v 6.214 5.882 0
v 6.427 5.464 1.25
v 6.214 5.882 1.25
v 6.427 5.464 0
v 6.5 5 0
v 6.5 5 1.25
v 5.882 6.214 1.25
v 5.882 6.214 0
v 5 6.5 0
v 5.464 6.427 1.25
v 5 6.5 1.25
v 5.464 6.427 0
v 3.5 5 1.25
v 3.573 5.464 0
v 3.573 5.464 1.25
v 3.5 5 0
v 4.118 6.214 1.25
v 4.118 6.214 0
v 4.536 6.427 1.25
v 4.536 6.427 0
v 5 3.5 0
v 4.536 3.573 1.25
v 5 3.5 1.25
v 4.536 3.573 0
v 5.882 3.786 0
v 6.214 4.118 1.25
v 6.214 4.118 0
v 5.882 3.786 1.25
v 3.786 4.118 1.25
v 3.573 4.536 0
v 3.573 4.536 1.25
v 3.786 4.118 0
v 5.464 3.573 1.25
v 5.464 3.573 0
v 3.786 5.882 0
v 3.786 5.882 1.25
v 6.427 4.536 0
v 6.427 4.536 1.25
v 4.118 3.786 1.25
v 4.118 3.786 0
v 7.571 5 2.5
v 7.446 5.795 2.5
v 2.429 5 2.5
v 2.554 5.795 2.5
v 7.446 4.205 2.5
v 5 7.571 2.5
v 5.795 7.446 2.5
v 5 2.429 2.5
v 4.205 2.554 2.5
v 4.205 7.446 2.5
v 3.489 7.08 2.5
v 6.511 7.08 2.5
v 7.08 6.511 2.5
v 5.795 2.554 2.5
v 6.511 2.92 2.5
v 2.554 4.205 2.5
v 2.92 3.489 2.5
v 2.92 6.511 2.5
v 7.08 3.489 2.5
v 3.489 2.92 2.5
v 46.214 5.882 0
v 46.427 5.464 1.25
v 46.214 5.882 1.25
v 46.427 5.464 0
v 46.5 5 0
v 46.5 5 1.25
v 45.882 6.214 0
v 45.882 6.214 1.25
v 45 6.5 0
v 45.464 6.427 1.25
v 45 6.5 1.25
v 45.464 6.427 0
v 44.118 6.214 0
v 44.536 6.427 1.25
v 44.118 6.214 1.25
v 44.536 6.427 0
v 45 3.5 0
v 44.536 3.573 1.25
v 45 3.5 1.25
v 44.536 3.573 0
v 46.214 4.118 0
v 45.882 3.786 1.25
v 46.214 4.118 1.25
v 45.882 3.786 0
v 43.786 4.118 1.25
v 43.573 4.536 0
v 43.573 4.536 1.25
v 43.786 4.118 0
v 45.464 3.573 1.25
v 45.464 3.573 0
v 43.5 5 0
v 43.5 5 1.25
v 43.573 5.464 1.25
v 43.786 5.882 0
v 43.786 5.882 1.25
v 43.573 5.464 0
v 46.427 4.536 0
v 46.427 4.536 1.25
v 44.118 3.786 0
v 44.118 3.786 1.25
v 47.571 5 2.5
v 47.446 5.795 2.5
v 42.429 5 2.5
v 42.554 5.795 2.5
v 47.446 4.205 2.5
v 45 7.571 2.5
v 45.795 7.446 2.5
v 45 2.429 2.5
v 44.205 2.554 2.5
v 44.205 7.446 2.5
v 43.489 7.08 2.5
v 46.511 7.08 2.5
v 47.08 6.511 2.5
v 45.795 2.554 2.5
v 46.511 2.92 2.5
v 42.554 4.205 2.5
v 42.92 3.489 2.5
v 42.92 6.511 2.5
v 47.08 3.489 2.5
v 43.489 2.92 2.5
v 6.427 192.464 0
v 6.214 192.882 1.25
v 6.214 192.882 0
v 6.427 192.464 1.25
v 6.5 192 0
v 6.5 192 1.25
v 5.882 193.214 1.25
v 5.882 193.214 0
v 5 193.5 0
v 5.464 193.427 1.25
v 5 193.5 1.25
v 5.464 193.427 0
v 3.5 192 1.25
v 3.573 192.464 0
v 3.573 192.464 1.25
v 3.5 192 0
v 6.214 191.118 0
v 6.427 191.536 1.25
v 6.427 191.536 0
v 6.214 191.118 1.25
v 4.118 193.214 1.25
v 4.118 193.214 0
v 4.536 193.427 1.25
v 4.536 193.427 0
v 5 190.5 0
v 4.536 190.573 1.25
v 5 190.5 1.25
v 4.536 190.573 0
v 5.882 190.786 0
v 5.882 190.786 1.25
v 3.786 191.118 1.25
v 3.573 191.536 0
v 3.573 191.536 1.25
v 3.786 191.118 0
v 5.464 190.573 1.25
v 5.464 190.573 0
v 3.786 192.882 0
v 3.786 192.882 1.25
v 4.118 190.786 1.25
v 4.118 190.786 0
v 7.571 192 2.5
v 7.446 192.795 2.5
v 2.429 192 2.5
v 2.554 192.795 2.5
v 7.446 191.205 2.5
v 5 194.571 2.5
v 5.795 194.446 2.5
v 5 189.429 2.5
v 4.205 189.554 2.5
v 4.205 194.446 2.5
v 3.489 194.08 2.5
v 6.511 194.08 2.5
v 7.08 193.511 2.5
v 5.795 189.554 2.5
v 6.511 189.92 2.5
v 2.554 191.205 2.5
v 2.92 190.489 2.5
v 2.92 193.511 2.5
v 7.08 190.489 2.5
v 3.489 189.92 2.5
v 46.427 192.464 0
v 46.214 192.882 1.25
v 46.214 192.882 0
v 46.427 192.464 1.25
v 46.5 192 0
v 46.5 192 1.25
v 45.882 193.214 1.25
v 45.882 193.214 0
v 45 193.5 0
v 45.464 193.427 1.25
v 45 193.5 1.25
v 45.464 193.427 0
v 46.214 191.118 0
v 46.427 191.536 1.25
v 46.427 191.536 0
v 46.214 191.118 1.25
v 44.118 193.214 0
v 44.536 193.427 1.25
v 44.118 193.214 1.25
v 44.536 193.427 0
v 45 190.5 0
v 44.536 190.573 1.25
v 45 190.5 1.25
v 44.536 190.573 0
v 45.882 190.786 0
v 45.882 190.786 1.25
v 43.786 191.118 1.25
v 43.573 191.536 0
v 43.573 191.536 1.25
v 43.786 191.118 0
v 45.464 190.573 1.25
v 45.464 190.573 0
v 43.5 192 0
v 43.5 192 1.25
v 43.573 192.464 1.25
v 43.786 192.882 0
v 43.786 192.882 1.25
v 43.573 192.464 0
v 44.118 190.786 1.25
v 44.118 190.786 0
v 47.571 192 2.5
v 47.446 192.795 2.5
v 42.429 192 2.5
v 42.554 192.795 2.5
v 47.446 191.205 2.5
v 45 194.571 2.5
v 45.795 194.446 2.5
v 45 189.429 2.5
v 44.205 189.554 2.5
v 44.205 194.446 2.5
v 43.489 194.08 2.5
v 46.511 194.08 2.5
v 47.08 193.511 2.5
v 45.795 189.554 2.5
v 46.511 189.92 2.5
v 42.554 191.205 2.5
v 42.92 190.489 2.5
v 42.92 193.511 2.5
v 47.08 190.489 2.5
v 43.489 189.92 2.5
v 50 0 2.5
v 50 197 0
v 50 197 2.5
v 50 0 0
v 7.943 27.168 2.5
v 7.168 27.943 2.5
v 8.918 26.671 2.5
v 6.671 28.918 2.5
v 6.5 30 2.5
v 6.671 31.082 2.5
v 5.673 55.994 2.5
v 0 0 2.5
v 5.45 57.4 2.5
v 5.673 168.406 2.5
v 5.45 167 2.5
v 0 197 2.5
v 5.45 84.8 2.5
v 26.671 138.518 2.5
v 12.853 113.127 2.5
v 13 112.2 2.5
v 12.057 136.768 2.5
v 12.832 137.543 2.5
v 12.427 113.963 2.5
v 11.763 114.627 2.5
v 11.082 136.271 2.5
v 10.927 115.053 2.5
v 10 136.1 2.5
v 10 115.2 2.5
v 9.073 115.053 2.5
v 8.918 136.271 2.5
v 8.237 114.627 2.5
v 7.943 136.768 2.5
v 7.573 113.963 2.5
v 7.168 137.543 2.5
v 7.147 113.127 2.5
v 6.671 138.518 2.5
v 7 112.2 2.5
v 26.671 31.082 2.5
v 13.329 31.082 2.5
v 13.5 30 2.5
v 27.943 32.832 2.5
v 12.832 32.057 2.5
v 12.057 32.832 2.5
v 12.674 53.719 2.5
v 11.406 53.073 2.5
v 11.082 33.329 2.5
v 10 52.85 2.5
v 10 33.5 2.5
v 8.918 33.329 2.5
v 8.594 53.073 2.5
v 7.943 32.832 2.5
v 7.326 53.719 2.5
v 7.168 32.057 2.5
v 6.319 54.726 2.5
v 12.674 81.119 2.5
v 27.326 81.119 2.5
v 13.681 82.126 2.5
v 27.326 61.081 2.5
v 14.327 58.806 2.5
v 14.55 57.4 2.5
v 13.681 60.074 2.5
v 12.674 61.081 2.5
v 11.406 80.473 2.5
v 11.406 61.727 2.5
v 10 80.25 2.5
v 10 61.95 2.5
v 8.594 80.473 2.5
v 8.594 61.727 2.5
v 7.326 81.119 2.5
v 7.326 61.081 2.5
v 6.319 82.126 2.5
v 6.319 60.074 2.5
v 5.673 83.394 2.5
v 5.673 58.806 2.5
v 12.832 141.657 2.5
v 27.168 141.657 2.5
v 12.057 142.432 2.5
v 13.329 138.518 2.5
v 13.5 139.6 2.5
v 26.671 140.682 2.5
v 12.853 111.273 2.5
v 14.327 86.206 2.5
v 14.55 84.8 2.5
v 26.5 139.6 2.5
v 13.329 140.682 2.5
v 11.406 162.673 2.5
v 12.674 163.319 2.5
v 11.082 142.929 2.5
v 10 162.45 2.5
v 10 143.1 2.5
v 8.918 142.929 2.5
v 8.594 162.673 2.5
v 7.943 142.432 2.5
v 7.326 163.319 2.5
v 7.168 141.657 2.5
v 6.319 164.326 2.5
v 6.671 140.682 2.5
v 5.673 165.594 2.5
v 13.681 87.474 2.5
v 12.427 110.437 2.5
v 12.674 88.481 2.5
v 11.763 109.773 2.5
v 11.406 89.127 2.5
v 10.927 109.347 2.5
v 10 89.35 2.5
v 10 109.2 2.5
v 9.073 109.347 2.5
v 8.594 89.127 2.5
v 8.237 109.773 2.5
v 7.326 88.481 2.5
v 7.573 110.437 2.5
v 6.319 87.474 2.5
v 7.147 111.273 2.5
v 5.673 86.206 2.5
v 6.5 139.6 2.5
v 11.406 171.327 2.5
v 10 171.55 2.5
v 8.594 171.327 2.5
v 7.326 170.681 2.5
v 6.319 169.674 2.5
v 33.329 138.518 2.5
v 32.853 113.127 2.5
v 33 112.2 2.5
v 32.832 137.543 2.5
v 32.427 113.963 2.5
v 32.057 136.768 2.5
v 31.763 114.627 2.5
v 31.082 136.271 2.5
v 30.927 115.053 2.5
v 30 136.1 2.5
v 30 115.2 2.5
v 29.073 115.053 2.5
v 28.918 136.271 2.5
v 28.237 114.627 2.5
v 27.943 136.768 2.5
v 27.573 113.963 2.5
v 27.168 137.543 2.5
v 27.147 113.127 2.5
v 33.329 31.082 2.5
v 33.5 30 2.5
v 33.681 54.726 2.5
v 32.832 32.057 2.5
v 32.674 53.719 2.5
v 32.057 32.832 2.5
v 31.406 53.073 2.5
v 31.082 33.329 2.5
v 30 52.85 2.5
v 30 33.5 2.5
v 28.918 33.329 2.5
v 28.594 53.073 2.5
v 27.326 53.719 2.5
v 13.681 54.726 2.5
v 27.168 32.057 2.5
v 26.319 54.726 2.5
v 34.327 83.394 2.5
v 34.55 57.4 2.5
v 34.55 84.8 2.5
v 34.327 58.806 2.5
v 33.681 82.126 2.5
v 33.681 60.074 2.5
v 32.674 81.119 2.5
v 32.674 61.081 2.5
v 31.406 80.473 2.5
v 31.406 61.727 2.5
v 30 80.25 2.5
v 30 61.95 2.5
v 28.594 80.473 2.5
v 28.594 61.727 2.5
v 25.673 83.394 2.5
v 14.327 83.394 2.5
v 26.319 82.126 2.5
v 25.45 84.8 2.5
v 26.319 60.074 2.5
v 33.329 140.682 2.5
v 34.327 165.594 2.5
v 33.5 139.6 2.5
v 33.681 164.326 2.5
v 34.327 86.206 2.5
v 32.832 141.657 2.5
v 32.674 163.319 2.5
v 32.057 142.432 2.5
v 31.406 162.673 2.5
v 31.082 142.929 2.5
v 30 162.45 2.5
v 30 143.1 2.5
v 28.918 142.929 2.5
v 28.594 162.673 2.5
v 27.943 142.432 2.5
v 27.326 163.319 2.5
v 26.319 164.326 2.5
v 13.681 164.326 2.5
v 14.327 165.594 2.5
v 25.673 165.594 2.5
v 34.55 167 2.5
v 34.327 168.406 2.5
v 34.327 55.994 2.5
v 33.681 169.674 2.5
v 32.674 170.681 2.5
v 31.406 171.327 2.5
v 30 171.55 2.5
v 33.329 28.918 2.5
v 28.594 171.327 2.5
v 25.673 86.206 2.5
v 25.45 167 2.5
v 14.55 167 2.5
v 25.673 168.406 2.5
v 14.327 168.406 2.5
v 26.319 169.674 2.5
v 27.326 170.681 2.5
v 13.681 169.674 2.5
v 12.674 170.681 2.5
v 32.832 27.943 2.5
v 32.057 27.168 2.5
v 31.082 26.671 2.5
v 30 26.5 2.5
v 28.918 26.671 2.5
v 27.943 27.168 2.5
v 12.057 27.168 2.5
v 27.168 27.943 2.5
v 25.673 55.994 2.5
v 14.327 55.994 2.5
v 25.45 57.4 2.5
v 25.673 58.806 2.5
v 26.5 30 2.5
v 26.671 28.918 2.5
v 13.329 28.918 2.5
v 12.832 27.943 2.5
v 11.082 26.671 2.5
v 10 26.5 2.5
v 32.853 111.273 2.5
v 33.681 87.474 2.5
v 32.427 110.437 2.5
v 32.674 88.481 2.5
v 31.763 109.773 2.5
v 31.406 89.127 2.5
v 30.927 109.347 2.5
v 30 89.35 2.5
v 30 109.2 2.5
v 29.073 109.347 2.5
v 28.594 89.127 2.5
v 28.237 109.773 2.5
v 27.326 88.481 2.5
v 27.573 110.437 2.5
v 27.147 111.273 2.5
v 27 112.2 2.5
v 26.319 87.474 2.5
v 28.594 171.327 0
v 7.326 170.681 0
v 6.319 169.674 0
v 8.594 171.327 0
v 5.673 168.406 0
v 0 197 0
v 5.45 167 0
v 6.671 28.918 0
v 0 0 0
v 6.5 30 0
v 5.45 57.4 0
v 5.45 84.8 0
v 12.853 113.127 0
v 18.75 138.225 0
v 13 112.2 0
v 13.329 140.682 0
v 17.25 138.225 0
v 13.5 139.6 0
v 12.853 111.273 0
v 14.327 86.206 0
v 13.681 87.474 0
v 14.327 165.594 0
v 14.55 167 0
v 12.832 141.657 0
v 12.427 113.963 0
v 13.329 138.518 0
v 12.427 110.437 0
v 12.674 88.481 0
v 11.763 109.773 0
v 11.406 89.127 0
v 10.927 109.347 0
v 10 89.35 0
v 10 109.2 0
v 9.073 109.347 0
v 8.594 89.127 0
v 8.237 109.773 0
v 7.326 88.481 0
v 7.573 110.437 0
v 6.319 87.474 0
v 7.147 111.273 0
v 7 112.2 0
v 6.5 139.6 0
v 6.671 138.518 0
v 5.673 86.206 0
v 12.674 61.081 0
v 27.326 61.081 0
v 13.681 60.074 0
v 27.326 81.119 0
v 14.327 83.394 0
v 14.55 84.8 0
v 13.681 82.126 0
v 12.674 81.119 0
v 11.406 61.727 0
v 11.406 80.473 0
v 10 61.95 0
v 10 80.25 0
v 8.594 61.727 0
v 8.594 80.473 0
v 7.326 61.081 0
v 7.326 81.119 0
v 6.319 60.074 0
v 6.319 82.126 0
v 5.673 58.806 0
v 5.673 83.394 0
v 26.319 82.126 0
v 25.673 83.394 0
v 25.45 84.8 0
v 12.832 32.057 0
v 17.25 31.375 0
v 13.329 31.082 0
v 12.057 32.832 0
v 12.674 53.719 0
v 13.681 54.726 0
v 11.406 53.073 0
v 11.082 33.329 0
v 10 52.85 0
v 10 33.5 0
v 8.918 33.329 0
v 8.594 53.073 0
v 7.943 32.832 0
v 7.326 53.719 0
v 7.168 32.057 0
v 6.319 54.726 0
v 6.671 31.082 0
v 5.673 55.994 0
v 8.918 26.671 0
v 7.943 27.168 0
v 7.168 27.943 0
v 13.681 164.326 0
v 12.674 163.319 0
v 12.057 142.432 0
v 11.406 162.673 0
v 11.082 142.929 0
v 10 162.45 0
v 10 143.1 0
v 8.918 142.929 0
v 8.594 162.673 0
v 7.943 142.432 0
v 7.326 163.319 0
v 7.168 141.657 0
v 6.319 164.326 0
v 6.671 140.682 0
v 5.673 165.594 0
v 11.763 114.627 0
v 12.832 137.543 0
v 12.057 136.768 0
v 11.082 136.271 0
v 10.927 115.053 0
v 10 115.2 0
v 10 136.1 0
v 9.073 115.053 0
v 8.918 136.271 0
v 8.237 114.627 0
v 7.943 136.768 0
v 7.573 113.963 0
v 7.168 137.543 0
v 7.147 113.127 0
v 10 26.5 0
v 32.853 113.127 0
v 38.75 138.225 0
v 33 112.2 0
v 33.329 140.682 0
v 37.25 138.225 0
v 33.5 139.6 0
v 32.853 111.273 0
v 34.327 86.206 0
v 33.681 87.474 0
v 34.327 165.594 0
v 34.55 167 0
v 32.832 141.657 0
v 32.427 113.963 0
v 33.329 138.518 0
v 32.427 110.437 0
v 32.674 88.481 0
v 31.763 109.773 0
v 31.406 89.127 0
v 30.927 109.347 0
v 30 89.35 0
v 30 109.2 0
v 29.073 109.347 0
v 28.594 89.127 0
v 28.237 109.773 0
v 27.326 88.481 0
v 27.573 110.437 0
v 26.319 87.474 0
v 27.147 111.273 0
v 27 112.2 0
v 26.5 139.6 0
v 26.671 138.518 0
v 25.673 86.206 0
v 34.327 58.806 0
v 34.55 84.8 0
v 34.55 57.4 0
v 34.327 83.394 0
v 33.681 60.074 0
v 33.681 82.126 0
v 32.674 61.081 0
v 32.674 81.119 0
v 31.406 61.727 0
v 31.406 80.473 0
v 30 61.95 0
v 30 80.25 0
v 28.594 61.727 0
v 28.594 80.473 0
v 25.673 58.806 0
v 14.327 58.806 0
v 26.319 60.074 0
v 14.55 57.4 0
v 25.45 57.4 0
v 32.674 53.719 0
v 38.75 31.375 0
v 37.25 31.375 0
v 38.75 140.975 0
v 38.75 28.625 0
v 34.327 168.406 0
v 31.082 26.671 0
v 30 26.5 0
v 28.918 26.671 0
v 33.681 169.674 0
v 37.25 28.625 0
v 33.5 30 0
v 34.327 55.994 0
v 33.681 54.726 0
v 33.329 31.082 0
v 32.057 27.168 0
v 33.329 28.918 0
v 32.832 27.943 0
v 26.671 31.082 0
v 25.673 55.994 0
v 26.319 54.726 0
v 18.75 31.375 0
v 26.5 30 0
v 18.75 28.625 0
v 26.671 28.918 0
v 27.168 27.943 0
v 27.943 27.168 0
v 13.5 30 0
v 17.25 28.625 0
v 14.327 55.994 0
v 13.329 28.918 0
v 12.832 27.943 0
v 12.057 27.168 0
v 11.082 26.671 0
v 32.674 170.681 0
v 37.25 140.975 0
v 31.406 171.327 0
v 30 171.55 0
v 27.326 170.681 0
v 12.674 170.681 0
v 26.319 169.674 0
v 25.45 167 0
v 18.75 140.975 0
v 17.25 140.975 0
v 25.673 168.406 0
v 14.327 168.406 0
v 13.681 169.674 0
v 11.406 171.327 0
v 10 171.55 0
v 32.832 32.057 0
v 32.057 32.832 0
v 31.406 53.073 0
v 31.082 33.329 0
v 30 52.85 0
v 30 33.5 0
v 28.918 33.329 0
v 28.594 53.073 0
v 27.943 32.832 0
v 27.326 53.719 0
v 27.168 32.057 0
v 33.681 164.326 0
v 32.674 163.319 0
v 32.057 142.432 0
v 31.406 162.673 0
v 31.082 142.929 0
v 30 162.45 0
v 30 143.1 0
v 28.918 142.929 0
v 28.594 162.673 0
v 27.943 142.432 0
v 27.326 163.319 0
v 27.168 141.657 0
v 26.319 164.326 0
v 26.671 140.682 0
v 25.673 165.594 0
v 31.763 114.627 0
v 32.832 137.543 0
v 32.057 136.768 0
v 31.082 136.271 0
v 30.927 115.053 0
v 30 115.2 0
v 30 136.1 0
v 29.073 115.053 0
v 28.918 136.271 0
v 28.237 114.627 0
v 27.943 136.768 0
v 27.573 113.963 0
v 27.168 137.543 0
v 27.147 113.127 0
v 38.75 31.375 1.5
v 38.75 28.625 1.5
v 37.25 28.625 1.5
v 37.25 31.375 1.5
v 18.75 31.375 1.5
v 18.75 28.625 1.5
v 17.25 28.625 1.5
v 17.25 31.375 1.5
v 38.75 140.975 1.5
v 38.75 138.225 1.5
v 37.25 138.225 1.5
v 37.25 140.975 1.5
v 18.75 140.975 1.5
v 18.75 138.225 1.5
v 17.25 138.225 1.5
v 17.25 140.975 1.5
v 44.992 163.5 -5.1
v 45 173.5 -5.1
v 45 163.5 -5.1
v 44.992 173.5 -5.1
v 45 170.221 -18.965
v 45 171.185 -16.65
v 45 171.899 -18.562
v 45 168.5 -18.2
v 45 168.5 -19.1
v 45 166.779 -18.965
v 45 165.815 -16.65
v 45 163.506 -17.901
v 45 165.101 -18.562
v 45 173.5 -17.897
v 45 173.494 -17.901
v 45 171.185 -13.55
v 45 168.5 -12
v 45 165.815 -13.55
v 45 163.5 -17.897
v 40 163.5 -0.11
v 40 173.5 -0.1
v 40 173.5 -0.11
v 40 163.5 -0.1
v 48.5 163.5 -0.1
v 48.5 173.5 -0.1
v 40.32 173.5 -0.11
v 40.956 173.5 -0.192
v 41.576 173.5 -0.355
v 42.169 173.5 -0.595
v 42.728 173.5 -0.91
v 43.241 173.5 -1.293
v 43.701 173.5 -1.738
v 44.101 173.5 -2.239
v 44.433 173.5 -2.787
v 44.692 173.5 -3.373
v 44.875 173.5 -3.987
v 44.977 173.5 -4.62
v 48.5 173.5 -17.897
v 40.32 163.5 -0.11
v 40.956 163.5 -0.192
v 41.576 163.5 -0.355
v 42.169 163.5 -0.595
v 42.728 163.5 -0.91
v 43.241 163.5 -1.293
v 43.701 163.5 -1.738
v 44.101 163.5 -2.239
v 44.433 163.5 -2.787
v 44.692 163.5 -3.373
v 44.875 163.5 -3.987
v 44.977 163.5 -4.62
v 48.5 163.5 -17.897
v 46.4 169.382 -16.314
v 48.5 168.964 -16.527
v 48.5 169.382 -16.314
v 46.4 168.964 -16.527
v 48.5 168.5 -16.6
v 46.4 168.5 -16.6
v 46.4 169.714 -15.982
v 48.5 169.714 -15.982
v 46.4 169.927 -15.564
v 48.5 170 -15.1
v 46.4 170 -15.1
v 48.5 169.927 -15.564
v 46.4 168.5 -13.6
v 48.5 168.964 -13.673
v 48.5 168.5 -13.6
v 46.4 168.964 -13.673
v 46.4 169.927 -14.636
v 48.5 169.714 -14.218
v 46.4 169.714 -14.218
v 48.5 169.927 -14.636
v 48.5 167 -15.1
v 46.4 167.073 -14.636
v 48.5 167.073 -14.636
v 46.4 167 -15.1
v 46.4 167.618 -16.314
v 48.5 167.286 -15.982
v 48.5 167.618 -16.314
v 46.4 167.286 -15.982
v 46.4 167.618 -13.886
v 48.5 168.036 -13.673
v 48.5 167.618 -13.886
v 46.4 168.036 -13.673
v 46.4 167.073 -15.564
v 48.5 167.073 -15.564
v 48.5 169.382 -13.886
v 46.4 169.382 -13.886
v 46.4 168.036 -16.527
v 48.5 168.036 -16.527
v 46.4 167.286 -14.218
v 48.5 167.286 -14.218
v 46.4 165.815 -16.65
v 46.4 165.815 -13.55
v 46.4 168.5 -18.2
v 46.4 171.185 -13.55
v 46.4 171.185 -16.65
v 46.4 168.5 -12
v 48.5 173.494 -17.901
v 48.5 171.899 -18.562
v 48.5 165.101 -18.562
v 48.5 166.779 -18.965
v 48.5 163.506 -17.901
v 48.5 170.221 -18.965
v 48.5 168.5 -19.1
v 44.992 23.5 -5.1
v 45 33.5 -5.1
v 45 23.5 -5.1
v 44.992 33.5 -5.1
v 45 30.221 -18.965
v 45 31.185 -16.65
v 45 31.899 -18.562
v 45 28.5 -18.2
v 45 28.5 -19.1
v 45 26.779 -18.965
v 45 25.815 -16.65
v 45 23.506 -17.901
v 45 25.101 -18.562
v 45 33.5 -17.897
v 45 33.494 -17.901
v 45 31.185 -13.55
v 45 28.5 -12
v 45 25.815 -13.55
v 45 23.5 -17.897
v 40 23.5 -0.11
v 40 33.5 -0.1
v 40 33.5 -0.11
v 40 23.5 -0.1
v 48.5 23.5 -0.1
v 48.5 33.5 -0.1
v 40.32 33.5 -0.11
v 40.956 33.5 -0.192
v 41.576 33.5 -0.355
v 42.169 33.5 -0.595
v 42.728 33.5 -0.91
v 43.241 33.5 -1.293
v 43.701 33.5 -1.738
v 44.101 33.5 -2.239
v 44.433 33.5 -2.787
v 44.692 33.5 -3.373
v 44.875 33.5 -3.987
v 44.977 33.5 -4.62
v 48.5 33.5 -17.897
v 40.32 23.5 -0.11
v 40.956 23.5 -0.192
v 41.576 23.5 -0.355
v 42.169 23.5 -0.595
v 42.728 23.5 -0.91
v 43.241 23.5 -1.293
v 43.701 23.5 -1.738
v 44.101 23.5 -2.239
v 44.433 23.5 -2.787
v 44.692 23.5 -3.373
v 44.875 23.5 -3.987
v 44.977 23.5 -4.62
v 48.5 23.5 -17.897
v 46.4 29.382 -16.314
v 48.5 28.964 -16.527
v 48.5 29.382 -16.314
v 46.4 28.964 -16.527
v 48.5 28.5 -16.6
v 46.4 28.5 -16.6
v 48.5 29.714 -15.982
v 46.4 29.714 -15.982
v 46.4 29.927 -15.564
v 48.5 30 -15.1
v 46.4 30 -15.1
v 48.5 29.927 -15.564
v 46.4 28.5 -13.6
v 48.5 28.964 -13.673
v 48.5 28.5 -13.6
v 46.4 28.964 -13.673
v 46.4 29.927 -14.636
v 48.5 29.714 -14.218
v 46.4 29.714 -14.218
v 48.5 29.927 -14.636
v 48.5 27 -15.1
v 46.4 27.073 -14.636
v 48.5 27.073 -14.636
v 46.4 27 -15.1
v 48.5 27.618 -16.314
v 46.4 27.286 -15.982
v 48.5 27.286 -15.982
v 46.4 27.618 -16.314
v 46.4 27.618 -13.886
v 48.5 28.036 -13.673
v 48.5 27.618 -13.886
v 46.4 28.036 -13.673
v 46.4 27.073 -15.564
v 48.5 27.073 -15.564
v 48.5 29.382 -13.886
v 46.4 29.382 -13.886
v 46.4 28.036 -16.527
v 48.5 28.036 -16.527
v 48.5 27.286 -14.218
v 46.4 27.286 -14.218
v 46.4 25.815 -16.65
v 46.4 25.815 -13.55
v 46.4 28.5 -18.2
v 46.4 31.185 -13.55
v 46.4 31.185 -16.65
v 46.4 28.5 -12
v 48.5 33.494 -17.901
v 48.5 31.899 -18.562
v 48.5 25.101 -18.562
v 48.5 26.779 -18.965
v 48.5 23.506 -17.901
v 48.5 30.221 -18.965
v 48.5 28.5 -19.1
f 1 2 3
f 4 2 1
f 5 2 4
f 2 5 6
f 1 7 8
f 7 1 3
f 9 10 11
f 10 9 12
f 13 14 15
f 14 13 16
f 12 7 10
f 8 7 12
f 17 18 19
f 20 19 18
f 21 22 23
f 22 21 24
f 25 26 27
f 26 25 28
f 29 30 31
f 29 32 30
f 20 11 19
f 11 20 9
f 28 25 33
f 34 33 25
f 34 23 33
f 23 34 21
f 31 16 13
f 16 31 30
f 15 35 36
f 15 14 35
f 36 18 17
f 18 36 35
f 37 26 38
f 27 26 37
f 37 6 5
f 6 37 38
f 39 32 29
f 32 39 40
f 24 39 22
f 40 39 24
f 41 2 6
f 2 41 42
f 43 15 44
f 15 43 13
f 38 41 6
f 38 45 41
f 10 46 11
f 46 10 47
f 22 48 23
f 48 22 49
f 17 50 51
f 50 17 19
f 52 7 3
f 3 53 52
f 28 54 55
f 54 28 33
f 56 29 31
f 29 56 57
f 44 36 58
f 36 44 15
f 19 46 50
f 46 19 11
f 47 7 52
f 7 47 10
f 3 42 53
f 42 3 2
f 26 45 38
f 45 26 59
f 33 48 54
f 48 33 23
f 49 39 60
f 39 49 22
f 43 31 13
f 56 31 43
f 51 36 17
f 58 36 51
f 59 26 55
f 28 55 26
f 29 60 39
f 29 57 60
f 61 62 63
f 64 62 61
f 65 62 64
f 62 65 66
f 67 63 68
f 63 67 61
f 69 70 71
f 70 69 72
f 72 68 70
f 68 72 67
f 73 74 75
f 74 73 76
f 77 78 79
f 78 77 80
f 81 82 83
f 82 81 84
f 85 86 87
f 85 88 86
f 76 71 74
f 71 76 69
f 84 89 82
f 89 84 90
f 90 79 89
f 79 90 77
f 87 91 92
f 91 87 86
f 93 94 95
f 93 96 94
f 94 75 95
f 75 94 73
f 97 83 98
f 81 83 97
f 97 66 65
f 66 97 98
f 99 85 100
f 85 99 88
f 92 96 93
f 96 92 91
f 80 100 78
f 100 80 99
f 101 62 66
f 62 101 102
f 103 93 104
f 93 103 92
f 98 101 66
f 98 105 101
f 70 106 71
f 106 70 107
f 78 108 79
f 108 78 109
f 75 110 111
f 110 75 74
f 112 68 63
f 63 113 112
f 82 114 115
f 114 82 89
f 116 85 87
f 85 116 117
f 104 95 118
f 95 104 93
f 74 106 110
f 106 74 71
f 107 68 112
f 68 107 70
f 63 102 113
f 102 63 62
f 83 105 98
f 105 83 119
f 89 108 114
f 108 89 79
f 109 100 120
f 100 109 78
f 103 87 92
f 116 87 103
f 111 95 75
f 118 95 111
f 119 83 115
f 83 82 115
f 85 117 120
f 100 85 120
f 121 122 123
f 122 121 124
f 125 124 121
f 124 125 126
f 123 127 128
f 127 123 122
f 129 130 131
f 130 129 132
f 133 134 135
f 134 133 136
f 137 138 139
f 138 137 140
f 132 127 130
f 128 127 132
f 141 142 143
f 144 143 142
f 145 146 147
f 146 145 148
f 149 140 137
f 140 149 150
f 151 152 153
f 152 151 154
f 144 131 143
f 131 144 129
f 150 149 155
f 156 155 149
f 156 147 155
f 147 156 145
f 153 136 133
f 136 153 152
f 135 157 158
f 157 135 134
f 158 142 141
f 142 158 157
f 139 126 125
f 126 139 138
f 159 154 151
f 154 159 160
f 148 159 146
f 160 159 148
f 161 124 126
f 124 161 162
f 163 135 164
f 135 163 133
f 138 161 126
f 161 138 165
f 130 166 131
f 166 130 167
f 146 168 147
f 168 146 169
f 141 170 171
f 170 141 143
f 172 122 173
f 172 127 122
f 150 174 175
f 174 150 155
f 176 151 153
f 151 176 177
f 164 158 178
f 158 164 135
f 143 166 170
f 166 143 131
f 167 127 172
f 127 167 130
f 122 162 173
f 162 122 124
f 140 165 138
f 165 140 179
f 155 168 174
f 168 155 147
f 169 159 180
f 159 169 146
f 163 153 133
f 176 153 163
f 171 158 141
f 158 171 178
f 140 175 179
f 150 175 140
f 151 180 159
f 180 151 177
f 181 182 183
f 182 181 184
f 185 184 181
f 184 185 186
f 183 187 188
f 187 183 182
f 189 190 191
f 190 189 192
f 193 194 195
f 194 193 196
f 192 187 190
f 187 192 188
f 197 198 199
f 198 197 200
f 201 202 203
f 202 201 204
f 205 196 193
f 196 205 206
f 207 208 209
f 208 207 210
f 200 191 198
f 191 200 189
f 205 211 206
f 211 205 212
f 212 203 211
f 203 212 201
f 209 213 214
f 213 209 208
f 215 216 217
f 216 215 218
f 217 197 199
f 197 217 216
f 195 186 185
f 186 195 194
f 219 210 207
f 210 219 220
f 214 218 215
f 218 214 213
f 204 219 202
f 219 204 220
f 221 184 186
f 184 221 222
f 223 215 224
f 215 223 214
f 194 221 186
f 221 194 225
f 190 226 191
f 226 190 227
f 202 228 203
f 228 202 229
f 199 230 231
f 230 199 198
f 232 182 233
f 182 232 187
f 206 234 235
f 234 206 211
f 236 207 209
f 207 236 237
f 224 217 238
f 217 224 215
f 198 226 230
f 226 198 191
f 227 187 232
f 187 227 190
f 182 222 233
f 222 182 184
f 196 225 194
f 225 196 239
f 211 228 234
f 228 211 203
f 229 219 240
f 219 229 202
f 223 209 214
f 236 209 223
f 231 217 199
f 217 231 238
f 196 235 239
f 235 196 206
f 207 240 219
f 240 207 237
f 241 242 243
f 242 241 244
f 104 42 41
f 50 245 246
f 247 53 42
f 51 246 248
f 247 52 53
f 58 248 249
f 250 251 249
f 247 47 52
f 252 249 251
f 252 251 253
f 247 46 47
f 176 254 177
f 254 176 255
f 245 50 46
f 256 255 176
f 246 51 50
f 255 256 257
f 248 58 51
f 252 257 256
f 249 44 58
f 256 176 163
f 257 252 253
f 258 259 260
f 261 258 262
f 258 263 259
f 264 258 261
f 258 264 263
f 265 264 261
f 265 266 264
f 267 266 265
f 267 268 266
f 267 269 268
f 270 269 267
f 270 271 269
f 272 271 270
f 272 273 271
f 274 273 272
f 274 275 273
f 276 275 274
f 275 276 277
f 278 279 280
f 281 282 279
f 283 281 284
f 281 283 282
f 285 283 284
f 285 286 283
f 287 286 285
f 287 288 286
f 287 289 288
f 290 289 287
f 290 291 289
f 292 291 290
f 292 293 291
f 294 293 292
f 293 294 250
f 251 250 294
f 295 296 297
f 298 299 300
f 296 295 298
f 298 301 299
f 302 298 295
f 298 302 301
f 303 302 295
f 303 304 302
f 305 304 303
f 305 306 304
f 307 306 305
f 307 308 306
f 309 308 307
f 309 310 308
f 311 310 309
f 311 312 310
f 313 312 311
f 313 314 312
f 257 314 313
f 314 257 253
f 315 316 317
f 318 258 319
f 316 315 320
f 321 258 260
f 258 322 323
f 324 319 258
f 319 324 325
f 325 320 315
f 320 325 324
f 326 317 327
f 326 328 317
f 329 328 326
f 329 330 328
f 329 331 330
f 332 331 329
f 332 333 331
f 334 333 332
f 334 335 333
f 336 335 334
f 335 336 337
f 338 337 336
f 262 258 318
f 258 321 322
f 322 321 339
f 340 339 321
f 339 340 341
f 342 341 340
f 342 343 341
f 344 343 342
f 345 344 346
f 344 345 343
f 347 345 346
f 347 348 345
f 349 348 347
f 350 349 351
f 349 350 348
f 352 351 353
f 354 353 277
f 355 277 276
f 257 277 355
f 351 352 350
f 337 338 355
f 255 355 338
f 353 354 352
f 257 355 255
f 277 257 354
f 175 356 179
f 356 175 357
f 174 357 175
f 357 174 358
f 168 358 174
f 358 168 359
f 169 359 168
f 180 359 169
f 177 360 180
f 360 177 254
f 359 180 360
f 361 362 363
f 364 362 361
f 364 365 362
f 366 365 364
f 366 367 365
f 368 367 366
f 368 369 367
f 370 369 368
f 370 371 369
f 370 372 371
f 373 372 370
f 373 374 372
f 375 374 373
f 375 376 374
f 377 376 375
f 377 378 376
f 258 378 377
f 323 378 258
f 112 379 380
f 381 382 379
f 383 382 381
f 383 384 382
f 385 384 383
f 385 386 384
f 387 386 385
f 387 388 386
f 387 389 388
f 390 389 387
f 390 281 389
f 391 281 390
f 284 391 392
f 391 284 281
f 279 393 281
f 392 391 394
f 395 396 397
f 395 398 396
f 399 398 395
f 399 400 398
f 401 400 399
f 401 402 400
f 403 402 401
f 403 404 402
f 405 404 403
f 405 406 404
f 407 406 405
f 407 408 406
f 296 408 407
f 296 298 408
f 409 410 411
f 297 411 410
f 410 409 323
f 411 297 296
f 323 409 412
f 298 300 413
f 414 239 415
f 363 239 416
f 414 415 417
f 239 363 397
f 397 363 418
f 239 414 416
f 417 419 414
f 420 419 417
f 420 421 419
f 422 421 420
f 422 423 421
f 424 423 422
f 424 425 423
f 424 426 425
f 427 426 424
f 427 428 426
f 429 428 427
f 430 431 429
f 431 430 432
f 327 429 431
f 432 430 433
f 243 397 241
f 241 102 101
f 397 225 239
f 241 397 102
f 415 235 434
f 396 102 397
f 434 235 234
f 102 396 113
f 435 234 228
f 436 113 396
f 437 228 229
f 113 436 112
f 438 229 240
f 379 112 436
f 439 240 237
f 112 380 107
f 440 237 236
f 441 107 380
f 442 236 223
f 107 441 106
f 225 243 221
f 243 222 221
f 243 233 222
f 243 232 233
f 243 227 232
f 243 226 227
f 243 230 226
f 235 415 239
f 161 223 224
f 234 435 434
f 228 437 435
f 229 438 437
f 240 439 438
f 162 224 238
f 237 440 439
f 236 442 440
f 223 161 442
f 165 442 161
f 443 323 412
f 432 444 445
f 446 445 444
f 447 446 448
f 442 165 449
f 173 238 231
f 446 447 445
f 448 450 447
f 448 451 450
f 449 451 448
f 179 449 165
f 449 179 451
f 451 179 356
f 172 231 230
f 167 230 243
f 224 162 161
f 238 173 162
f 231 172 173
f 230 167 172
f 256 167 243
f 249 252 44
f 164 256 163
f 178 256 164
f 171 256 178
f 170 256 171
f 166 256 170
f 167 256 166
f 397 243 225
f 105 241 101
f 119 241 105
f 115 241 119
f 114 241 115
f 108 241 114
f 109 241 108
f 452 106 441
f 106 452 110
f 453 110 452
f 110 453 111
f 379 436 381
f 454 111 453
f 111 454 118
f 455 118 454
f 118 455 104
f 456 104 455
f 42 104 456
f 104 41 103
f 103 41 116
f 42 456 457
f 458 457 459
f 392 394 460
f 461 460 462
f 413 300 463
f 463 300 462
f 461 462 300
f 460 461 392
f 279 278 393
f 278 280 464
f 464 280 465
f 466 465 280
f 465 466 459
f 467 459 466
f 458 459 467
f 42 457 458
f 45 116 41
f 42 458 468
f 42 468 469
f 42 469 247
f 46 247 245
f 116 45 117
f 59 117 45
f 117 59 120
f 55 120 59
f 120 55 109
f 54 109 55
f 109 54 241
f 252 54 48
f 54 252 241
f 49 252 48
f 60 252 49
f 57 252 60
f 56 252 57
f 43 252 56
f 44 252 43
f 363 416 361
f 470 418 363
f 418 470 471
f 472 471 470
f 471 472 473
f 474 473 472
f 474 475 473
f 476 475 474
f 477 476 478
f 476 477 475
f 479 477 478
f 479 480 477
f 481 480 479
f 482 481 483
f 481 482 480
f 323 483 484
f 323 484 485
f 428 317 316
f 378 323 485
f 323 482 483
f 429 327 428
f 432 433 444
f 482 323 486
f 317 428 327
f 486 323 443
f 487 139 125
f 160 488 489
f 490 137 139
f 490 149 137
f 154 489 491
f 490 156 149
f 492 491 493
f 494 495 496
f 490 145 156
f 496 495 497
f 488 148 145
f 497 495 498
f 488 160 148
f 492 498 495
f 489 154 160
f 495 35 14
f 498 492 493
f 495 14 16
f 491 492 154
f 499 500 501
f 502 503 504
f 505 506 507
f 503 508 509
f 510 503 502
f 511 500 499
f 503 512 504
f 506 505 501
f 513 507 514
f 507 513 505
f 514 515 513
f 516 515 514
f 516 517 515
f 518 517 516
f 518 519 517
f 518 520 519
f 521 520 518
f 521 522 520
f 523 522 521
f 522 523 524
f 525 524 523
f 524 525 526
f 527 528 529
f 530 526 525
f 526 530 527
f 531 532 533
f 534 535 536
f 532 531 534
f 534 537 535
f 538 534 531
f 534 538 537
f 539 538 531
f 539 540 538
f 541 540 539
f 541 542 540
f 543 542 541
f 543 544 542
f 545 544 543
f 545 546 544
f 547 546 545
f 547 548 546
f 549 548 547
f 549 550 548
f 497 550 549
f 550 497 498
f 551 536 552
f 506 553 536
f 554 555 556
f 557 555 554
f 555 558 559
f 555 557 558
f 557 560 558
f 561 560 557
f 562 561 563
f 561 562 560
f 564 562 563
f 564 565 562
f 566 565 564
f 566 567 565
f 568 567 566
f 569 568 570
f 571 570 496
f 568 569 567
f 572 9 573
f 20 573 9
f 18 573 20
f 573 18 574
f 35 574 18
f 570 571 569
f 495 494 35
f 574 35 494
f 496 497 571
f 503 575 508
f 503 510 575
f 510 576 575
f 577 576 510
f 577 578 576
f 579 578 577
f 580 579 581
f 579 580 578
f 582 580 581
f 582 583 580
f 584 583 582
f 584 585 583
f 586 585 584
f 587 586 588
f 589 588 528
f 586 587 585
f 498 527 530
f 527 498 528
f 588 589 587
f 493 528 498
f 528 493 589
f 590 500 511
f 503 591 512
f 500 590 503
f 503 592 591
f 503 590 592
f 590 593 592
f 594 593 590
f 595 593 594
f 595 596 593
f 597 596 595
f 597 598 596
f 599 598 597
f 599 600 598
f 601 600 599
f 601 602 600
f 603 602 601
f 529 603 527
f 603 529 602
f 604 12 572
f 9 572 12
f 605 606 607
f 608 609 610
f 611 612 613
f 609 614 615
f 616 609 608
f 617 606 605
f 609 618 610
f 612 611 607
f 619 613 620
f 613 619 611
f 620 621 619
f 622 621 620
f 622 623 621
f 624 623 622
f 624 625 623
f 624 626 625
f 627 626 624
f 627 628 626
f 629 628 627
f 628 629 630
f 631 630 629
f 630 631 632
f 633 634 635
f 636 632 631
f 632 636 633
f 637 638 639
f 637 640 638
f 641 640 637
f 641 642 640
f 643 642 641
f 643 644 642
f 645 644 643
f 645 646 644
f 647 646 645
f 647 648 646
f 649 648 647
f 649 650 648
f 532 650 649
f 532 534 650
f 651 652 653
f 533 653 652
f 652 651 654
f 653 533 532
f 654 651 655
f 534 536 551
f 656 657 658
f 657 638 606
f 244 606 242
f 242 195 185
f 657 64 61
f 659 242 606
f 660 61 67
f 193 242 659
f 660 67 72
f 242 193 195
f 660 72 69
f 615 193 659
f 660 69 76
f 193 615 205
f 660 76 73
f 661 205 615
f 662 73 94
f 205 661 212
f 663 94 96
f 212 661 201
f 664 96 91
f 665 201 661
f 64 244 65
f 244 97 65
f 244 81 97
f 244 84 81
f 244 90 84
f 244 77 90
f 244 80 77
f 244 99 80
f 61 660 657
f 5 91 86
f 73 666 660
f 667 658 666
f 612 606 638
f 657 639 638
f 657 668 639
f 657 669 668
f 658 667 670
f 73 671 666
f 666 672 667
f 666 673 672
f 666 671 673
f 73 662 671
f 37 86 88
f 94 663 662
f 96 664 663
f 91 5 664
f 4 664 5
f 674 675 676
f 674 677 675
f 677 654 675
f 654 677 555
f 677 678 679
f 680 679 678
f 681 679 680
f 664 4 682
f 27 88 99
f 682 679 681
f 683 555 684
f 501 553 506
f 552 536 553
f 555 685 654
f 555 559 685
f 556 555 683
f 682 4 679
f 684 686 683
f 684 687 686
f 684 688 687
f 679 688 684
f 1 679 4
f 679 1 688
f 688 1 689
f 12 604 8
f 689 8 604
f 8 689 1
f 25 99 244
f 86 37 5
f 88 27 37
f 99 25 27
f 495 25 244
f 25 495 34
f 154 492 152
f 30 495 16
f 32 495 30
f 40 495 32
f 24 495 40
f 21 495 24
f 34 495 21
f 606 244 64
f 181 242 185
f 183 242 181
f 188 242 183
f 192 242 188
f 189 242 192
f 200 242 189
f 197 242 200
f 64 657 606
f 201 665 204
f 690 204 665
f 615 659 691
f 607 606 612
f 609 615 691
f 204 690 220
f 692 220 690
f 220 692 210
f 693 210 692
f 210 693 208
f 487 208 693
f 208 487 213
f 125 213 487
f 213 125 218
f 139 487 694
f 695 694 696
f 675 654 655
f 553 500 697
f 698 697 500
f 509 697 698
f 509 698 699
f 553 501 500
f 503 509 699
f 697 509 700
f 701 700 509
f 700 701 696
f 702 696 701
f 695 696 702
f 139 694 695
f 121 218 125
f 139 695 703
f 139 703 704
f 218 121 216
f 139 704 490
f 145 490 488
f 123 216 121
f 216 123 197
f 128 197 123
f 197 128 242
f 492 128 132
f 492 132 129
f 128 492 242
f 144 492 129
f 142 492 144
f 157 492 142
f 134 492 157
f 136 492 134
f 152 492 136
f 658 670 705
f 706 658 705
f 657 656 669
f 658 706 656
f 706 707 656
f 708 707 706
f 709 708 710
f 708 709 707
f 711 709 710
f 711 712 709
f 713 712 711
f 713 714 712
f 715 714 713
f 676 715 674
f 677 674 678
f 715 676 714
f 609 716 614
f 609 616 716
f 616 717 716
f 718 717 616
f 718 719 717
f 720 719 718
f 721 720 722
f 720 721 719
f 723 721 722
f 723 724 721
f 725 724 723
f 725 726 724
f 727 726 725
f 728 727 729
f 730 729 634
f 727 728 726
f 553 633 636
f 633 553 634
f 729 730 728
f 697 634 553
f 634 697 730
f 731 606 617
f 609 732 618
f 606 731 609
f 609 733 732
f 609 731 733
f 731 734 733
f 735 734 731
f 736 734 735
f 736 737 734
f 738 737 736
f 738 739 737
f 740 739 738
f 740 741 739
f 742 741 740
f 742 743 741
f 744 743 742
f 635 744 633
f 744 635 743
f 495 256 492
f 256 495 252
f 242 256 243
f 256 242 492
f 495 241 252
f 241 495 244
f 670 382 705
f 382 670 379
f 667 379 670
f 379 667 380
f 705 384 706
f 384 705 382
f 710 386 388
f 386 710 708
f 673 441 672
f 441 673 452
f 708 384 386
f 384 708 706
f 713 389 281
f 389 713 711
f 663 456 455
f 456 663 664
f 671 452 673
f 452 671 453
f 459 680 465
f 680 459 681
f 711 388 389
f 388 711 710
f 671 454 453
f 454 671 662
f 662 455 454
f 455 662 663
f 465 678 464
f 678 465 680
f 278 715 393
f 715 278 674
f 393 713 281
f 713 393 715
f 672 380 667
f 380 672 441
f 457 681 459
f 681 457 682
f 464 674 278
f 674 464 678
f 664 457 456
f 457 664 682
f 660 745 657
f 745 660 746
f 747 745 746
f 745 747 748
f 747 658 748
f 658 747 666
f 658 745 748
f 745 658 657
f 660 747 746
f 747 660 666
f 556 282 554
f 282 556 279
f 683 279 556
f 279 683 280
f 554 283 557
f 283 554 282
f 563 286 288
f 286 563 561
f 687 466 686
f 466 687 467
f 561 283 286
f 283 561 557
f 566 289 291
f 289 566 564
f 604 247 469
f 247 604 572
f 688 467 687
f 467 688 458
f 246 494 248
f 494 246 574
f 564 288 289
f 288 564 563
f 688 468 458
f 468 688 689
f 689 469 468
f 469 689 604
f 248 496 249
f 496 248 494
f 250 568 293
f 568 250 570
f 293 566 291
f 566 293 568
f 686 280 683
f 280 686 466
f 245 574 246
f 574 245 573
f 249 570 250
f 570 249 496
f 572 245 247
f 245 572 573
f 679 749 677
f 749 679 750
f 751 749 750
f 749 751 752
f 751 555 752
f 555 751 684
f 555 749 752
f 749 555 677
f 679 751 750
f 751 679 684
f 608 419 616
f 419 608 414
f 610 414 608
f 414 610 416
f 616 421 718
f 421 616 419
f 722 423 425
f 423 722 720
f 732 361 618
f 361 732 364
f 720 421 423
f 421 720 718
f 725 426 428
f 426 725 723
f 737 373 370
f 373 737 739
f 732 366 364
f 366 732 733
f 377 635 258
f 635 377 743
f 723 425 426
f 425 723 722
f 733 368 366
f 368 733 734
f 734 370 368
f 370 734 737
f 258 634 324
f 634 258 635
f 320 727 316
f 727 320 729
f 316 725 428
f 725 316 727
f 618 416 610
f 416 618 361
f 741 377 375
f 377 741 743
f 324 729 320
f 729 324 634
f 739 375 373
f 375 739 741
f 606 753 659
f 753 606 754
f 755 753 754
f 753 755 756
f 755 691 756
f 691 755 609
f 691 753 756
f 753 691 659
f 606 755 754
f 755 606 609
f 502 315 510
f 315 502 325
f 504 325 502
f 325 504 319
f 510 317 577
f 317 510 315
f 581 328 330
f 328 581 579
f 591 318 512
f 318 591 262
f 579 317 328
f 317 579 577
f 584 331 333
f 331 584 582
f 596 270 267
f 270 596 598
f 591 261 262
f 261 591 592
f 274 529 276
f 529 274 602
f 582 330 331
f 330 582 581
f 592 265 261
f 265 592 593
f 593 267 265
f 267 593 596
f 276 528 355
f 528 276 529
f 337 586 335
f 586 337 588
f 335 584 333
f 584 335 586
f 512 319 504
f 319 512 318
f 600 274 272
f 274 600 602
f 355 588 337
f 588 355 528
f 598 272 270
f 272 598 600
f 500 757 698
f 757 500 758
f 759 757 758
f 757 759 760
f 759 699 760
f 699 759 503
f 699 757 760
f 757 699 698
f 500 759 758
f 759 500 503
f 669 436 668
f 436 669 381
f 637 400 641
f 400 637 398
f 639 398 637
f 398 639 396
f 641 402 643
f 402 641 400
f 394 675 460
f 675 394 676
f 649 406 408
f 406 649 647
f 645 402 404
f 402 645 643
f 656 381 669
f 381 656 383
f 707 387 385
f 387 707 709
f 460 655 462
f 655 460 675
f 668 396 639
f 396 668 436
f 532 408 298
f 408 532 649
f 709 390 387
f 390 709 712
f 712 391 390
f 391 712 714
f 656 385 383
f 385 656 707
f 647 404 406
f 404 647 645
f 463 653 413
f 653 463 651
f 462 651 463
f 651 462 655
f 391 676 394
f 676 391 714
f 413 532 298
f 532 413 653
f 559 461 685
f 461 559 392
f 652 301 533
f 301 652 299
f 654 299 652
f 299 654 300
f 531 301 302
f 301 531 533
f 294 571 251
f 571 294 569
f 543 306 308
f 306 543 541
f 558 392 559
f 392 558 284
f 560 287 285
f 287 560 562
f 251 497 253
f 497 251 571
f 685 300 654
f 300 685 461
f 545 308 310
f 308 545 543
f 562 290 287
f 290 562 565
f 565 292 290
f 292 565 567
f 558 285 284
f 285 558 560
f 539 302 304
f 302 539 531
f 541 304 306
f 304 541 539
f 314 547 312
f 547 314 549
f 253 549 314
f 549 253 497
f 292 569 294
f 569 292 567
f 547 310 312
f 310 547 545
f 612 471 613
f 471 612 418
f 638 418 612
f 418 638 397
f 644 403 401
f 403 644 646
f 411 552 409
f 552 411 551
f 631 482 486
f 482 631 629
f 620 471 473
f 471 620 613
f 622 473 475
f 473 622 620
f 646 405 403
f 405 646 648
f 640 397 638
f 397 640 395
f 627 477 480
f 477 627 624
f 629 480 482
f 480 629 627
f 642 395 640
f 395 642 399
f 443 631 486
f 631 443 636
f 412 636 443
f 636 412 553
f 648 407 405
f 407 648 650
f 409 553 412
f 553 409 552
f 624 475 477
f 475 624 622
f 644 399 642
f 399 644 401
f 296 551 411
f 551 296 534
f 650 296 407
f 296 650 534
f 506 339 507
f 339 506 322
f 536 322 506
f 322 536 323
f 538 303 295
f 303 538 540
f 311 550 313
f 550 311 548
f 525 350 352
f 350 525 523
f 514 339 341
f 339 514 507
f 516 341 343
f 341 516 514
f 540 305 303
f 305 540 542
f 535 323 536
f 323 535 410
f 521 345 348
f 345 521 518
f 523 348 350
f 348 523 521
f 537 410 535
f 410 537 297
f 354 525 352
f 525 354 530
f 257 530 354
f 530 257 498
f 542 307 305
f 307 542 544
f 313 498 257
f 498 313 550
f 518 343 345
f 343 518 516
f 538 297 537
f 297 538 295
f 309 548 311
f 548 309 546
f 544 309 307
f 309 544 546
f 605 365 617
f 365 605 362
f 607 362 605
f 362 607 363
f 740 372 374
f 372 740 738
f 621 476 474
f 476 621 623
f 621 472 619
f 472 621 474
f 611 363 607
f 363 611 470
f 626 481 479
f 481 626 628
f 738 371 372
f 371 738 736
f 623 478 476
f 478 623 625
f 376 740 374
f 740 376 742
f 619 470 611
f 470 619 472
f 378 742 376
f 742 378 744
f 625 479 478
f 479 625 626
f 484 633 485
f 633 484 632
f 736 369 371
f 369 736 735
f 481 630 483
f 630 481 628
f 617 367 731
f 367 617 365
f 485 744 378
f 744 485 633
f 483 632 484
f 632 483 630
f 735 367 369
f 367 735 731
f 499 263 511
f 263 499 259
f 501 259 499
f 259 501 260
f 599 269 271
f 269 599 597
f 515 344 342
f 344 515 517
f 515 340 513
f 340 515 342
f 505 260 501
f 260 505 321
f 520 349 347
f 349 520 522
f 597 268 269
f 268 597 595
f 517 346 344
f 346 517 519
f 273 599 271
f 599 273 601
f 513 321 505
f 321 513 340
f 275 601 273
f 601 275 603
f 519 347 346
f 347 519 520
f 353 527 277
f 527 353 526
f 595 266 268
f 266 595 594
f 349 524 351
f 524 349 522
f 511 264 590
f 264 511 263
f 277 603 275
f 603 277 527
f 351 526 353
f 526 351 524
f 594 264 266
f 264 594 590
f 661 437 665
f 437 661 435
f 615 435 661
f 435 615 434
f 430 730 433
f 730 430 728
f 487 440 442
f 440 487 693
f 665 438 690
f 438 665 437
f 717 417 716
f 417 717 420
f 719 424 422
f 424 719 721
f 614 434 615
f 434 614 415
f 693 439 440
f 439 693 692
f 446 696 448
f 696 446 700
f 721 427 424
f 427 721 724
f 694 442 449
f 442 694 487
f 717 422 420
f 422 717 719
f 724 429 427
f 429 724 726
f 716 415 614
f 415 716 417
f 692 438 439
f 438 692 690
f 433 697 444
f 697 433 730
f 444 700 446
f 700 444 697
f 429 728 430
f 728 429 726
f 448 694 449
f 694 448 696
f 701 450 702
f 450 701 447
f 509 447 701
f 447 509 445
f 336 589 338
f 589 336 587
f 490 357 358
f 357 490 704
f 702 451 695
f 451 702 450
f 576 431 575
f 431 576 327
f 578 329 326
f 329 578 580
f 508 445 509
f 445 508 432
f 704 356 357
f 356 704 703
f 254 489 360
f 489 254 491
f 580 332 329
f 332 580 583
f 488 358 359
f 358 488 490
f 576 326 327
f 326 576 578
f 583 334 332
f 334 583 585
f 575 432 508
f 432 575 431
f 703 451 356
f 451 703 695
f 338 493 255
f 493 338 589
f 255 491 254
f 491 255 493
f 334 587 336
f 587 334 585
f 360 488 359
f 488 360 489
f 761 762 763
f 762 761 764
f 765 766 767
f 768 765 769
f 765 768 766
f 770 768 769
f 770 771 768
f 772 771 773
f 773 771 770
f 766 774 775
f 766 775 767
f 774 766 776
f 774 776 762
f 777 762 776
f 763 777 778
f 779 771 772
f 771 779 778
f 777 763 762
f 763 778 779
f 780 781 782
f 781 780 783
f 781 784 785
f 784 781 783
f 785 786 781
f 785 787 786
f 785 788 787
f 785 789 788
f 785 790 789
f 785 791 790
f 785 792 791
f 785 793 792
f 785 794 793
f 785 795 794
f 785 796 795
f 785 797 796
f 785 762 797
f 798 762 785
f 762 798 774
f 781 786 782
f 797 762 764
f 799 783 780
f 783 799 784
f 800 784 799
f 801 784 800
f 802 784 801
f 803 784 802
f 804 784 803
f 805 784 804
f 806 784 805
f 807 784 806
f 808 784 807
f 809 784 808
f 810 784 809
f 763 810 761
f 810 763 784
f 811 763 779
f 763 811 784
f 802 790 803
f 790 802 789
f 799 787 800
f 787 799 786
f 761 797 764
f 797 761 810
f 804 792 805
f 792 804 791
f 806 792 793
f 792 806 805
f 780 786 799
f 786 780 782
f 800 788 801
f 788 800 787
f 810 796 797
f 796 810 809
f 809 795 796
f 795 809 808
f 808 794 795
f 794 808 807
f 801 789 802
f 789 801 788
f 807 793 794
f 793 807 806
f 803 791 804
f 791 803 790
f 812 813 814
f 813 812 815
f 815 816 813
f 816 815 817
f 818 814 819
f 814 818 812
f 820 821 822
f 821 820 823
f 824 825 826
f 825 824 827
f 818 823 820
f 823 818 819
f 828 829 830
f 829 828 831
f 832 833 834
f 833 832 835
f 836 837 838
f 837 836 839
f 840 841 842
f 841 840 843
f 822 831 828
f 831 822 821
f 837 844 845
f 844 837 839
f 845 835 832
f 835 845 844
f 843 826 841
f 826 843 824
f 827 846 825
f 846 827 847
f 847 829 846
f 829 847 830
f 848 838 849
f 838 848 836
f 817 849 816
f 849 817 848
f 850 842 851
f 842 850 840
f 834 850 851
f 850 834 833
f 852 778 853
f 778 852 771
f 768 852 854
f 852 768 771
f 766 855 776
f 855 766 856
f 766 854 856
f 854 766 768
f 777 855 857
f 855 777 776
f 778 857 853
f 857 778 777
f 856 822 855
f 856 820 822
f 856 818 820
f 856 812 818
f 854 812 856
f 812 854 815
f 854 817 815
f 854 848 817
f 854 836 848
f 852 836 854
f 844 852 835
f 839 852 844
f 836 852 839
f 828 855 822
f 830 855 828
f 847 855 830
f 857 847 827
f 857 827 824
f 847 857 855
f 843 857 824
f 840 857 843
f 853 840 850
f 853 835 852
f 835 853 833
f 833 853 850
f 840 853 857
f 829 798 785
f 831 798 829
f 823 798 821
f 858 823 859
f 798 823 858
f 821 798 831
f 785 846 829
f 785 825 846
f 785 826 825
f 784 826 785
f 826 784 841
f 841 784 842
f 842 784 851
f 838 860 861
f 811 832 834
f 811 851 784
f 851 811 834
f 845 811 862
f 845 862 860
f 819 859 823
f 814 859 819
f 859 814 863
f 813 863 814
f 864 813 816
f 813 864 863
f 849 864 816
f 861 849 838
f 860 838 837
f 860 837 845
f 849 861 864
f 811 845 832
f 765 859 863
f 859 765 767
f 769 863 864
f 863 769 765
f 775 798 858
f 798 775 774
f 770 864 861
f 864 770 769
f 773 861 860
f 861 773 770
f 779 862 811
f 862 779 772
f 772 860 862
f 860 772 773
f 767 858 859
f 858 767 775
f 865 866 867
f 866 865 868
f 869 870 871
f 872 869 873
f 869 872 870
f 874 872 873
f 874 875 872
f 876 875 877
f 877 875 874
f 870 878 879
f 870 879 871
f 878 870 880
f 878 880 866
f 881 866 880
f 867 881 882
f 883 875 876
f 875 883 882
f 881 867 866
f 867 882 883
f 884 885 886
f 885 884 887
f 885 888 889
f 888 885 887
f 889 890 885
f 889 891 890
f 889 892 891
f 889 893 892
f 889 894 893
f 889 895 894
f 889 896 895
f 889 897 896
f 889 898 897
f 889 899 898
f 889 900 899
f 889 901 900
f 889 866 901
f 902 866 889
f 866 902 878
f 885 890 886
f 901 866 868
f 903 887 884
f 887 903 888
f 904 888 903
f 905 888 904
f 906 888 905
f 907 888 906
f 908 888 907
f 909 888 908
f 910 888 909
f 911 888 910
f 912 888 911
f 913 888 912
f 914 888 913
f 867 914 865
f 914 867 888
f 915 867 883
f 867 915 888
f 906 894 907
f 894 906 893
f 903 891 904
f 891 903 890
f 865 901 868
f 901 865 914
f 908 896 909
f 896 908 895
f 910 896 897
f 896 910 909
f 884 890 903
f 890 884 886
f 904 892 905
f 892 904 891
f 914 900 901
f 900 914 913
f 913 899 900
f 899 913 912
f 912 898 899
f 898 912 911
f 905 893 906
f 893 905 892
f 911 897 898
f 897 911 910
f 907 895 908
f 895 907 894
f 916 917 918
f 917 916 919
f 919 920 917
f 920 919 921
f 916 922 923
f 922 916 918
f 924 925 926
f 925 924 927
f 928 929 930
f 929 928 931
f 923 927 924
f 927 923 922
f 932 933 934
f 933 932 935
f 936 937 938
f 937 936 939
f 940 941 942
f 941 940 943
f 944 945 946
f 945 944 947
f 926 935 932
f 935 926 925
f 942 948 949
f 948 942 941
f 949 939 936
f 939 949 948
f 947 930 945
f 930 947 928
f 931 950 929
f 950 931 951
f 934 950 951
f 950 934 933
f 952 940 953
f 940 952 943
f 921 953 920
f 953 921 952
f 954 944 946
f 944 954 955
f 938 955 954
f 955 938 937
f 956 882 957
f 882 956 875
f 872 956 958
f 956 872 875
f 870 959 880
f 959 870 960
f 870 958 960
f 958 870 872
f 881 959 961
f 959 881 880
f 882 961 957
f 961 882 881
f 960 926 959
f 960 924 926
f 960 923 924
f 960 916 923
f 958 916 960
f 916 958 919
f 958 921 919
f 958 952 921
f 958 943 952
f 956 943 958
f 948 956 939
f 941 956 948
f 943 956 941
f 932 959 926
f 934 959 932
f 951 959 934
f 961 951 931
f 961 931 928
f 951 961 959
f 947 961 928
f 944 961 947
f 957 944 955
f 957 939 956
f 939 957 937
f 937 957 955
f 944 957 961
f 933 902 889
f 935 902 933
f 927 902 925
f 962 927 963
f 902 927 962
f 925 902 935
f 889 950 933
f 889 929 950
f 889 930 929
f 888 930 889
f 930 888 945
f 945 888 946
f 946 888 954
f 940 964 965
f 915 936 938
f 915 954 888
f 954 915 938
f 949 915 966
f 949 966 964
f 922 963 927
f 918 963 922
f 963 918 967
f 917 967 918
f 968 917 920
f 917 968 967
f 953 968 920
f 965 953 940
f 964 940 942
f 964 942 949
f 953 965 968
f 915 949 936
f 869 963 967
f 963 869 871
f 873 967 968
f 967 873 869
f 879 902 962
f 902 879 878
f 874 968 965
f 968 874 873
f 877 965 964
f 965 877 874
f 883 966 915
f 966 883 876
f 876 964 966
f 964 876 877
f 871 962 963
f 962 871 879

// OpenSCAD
// file: kosmo.scad
panelHeight = 197;
thickness = 2.5;
mountHoleDiameter = 3.0;
jackHoleDiameter = 9.1;
ledHoleDiameter = 5;
pushButtonHoleDiameter = 7;
potHoleDiameter = 7;
switchHoleDiameter = 6;
rotarySwitchHoleDiameter = 9.1;
midiSocketHoleDiameter = 15;
colPaddingLeft = 20;
colPaddingRight = 10;
rowPadding = 30;

offsetTopBottom = 20; // Mounting area

n_rows = 6;
n_cols = width / 25;

rowsStart = rowPadding;
rowsEnd = panelHeight - rowPadding;

colsStart = colPaddingRight;
colsEnd = width - colPaddingLeft;


function row (i) = rowsStart + i * (rowsEnd - rowsStart) / (n_rows - 1);
function col (i) = colsStart + i * (colsEnd - colsStart) / (n_cols - 1);

module pcbHolders(){
  pcbHolder(width-5, panelHeight/2 + 140/2 - 5);
  pcbHolder(width-5, panelHeight/2 - 140/2 - 5);
}


module pcbHolder(x, y){
  pcbHole = 3;
  w = 10;
  h = 20;
  clearance = 15; // distance between panel and PCB hole
    
  translate([x, y, -0.1]) { // prevent gap
    rotate([0, 90, 0]) {
      union() {
        difference() {
          translate([0, 0, -5]) {               
            cube([5,w,5]);
          }
          translate([5, w+1, -5]) {
            rotate([90, 0, 0]) {
              cylinder(r=5, h=w+2,$fn=49);
            }
          }
        }
        /**/
        intersection() {
          difference() {
            cube([h, w, thickness+1]);
            translate([clearance, w/2, -0.9]){
              cylinder(r=pcbHole/2,  h=thickness+2, $fn=20);
              cylinder(r=3.1, h=2.3, $fn=6);
            }
          }
          translate([h/2-2, w/2, -1]) {
            cylinder(r=w+1, h=thickness+2, $fn=40);
          }
        }
        /**/
      }
    }
  }
}



module kosmoMountHoles(width, height) {
  punchHole(5, 5, mountHoleDiameter,true);
  punchHole((width-5), 5, mountHoleDiameter,true);
  punchHole(5, (height-5), mountHoleDiameter,true);
  punchHole((width-5), (height-5), mountHoleDiameter,true);
}


module punchHole(x, y, holeSize,chamfer=false){
  translate([x, y, -1]){
    cylinder(r=holeSize/2, h=thickness+2, $fn=20);
    if(chamfer) {
      translate([0, 0, 0.5]){
        cylinder(r2=holeSize, r1=0, h=holeSize+0.5, $fn=20);
      }
    }
  }
}

module midiSocket(x, y) {
    punchHole(x, y, midiSocketHoleDiameter);
}
module led(x, y) {
    punchHole(x, y, ledHoleDiameter);
}
module switch(x, y) { 
    punchHole(x, y, switchHoleDiameter);
}
module pushButton(x, y) { 
    punchHole(x, y, pushButtonHoleDiameter);
}
module rotarySwitch(x, y) { 
    punchHole(x, y, rotarySwitchHoleDiameter);
}
module sevenSegmentDisplay(x, y) {
    translate([x-6.5, y-9.6, -1]){
        cube([13, 19.2, thickness+2]);
    }
}

module pot(x, y) {
  translate([x, y , 0]) {
    union() {
      punchHole(0, 0, potHoleDiameter);
      translate([7.25, -2.75/2, -0.1]) {
        cube([1.5, 2.75, 1.6]);
      }
    }
  }
  echo(concat("pot at ", x, y));
}

module jack(x, y){
  punchHole(x, y, jackHoleDiameter);
    echo(concat("Jack at", x, y));
}

module panel(width) {
  difference() {
    cube([width, panelHeight, thickness]);
    kosmoMountHoles(width, panelHeight);
  }
}
// main file
width = 50;
include <kosmo.scad>
n_rows = 6;

 difference() {
     panel(width);
     
    
     
     pot(col(1), row(0)); // A0
     pot(col(0), row(0)); // R0
     
     jack(col(1), row(1)); // GATE0
     jack(col(0), row(1)); // CV0
     
     jack(col(1), row(2)); // SIG IN 
     jack(col(0), row(2)); // SIG OUT
          
     
     switch(col(1), row(3)); // pluck/AR0
     switch(col(0), row(3)); // pluck/AR1
       
     pot(col(1), row(4)); // A1
     pot(col(0), row(4)); // R1
          
     
     jack(col(1), row(5)); // GATE1
     jack(col(0), row(5)); // CV1
     
     
     
 }
pcbHolders();
